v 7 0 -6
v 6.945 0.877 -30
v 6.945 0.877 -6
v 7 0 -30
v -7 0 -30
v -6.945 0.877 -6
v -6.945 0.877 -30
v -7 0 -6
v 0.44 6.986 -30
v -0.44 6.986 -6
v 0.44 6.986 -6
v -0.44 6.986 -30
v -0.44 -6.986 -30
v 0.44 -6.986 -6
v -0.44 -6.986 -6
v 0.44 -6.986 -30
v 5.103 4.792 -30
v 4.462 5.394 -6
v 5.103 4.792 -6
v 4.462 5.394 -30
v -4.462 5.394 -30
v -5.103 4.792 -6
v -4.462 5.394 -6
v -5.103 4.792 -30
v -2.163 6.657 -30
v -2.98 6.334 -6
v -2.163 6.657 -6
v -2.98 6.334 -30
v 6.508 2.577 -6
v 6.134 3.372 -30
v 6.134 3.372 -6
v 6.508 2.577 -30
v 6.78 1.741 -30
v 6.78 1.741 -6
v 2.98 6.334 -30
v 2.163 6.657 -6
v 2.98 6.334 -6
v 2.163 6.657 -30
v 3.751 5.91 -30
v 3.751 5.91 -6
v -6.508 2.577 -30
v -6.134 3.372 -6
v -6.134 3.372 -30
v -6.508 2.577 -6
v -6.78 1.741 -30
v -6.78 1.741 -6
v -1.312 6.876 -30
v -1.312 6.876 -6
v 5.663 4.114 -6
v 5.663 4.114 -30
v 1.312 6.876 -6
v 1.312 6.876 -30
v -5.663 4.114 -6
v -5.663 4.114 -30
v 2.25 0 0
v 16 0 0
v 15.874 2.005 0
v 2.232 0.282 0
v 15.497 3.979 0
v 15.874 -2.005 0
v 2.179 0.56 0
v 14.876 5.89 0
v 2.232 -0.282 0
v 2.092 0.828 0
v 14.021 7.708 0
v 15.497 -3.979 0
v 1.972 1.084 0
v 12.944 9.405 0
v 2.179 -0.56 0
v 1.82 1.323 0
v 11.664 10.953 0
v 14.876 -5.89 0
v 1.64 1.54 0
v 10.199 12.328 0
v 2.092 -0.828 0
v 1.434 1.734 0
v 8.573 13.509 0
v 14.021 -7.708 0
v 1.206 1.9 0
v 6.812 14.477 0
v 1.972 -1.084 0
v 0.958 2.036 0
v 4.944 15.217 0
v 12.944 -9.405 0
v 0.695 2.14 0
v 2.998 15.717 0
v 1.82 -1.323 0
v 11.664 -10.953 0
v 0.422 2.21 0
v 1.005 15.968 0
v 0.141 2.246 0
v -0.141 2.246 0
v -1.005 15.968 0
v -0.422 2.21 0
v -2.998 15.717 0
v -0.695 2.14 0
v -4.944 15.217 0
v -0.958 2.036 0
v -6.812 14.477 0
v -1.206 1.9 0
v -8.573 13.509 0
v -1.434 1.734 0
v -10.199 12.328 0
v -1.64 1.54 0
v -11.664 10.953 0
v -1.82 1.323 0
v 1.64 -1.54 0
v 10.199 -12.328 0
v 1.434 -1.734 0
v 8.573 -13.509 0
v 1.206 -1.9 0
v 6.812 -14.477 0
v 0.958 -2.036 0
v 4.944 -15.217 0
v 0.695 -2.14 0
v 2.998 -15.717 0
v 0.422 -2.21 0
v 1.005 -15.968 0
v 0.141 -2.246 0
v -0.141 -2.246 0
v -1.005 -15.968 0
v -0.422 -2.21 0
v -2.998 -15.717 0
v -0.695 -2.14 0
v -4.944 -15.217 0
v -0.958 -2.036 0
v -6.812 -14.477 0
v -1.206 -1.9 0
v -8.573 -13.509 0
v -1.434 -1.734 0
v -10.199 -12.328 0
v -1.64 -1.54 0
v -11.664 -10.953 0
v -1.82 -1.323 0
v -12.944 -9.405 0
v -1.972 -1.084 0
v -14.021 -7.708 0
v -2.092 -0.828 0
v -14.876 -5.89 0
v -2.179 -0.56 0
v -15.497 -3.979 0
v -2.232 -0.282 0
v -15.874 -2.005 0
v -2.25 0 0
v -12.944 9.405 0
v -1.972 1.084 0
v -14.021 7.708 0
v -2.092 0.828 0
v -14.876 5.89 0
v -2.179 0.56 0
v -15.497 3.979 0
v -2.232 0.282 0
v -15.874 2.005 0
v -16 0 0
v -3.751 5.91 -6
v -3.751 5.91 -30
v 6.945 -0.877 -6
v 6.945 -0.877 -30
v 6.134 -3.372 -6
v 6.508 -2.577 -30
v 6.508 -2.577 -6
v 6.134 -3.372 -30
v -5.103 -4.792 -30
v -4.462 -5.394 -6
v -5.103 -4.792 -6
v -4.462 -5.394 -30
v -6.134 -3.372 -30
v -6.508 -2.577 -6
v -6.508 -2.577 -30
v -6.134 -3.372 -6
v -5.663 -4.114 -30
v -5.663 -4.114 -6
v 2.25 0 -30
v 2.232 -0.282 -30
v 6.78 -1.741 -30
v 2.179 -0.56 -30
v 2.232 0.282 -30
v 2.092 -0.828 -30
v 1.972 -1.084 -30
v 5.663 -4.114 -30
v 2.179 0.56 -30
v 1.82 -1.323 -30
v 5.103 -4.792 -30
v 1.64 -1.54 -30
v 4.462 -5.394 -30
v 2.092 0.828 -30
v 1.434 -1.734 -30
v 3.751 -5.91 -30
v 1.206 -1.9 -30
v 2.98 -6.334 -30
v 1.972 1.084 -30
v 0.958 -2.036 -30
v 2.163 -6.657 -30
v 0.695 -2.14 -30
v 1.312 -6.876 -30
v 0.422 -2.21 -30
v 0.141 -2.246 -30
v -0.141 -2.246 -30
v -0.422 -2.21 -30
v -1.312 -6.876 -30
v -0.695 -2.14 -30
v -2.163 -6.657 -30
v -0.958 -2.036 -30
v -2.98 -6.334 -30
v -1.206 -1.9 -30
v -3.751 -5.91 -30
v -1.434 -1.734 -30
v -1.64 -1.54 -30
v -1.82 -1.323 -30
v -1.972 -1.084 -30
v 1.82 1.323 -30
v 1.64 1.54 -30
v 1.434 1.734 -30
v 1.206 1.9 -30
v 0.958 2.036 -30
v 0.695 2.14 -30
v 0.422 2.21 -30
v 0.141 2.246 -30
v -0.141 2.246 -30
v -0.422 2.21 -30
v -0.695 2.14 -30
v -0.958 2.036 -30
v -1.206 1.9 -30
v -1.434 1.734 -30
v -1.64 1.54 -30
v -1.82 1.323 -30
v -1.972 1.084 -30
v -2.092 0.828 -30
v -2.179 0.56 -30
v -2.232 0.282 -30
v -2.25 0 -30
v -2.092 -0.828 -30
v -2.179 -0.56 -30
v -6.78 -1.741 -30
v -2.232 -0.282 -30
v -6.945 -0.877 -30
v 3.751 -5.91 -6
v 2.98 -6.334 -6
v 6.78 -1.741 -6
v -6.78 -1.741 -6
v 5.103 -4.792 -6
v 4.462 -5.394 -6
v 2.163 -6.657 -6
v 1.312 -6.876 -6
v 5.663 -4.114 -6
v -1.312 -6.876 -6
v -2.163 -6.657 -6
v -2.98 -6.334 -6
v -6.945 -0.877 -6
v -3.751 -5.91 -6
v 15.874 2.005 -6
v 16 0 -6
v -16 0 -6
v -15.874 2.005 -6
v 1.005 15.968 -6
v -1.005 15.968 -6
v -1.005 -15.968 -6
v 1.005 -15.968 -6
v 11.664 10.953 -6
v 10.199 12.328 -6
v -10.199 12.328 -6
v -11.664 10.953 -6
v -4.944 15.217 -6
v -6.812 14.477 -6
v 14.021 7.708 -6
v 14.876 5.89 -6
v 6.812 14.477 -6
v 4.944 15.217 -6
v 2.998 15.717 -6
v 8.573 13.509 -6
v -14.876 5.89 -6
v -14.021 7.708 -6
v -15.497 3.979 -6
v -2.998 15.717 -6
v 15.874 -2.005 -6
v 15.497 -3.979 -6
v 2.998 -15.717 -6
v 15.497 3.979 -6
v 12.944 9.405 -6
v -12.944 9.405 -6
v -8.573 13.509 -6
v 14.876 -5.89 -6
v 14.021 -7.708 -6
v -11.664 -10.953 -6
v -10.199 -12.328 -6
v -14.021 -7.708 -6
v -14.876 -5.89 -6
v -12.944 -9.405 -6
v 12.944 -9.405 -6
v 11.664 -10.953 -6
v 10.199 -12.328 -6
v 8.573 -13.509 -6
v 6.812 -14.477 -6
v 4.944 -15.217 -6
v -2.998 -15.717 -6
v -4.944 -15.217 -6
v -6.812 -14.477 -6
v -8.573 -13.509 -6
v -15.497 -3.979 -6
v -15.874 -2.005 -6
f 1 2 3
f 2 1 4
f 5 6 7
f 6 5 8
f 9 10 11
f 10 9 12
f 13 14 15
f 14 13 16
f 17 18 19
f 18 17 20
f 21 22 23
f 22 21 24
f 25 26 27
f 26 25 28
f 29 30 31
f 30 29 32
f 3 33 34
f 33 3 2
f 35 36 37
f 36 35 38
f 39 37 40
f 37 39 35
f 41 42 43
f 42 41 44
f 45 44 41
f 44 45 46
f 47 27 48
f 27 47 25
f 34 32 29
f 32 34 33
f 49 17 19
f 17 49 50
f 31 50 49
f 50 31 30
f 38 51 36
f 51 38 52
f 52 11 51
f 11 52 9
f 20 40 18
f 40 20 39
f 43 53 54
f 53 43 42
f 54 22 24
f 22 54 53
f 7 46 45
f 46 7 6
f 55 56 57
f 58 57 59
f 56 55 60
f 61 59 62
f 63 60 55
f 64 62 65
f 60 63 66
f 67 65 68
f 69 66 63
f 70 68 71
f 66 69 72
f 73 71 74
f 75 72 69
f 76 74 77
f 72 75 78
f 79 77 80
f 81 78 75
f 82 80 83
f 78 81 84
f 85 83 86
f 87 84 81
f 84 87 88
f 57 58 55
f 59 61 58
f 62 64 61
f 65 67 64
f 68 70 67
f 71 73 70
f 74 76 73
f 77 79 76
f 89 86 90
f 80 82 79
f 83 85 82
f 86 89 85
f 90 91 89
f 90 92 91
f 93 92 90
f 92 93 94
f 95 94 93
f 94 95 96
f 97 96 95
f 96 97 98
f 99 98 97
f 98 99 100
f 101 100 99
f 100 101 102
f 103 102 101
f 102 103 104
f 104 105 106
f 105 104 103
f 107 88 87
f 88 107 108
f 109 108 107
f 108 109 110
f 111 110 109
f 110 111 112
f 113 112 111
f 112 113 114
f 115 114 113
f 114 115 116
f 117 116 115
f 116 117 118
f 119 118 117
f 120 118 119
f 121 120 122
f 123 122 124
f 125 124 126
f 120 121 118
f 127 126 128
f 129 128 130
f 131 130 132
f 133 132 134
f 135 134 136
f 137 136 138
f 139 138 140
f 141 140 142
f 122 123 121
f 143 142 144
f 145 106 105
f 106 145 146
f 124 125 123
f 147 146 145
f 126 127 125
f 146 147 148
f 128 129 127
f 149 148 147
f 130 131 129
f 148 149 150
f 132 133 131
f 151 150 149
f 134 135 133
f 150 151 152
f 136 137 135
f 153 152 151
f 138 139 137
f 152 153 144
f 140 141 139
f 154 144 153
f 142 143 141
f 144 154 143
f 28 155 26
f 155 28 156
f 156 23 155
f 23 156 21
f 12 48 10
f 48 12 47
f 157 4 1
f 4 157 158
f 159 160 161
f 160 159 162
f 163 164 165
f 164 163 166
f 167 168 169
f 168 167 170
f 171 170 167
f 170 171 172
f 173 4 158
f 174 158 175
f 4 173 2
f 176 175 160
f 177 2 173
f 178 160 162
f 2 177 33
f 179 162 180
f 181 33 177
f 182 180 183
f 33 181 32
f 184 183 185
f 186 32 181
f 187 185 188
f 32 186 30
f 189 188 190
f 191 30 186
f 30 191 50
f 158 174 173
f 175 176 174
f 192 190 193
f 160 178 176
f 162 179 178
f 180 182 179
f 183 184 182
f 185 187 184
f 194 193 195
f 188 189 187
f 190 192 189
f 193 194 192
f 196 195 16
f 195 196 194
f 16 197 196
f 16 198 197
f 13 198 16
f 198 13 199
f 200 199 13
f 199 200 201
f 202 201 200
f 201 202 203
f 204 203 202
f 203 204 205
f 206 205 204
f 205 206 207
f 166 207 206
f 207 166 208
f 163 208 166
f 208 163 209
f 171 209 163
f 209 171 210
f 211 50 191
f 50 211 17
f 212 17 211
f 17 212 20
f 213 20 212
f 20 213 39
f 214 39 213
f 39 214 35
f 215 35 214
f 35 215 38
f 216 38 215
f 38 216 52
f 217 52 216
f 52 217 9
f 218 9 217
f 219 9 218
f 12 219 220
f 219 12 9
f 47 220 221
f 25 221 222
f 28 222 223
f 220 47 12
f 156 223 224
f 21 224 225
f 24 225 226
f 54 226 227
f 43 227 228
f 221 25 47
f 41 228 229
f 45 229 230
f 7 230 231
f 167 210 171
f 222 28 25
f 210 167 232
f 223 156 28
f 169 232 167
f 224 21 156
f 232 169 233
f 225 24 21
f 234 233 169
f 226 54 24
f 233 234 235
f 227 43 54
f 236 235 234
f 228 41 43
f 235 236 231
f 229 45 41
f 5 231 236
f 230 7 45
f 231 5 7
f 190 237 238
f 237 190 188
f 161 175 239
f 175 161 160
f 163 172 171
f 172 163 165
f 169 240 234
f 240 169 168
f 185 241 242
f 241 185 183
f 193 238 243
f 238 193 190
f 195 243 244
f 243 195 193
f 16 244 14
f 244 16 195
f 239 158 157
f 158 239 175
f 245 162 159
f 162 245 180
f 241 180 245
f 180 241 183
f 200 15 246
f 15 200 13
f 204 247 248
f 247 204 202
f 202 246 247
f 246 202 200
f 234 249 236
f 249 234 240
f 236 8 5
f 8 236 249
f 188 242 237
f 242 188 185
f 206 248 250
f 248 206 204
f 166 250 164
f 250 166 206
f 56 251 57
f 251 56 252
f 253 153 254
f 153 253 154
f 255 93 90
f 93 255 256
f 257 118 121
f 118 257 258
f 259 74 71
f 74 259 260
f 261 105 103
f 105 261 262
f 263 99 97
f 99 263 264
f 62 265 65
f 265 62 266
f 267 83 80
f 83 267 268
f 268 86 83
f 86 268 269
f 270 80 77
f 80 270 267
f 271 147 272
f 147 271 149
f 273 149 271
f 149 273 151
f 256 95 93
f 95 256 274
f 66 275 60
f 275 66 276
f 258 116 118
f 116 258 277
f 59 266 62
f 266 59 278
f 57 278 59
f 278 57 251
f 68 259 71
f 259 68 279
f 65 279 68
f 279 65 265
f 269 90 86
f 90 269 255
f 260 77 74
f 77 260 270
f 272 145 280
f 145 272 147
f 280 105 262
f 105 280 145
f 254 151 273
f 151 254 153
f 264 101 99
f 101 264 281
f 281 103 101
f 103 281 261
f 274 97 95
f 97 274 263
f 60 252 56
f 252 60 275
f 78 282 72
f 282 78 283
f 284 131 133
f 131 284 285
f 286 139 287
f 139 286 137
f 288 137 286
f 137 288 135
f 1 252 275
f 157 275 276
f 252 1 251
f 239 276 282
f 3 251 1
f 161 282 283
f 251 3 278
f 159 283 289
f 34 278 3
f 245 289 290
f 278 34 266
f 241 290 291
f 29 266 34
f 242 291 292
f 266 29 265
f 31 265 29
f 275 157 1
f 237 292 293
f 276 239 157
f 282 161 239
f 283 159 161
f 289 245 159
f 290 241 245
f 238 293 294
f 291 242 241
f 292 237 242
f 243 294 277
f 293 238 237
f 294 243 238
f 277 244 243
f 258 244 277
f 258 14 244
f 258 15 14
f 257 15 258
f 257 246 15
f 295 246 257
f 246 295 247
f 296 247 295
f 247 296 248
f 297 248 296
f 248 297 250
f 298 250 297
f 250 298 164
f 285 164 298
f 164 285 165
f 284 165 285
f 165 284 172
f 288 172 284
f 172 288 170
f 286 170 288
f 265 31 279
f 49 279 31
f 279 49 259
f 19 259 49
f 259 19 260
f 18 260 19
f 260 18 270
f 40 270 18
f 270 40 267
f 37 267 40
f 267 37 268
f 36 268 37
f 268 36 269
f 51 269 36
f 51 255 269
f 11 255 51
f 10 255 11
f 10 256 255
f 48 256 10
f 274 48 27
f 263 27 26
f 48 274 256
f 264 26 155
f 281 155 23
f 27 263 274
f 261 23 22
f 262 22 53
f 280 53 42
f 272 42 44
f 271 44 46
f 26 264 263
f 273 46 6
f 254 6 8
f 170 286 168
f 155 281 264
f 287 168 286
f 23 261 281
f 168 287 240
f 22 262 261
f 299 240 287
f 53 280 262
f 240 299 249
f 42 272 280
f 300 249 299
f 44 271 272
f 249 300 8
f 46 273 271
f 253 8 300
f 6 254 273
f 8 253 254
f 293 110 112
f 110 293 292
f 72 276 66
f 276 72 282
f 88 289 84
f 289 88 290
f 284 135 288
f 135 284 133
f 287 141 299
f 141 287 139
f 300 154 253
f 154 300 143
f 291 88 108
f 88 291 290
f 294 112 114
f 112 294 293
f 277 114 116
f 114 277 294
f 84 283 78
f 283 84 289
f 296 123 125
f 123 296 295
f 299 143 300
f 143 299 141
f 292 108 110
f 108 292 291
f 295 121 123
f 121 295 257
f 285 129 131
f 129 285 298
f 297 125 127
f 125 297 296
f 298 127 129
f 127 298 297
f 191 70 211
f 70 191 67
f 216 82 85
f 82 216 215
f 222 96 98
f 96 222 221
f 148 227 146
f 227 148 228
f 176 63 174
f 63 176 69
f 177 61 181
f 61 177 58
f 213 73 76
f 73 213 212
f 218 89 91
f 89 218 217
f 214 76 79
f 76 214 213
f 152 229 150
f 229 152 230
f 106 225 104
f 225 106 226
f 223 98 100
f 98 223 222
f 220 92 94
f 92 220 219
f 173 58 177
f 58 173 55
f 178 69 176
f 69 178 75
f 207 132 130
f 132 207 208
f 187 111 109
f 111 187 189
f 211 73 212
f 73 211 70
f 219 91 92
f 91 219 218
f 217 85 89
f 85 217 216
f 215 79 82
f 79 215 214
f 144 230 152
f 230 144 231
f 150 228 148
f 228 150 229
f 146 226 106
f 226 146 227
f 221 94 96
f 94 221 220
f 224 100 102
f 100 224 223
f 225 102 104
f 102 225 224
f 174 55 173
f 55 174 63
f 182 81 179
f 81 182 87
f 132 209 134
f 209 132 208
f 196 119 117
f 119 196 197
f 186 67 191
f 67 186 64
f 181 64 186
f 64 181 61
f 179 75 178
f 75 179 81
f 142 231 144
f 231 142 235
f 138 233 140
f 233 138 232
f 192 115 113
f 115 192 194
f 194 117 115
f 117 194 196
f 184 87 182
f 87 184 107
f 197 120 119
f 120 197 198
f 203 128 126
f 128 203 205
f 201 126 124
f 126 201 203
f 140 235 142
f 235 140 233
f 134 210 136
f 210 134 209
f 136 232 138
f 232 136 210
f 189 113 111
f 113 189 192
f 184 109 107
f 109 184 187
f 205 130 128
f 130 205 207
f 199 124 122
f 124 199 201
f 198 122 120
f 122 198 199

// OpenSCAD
$fn = 50;


difference() {
	union() {
		translate(v = [0, 0, -30.0000000000]) {
			cylinder(h = 30, r = 7.0000000000);
		}
		translate(v = [0, 0, -6.0000000000]) {
			cylinder(h = 6, r = 16.0000000000);
		}
	}
	union() {
		#translate(v = [0, 0, -30]) {
			cylinder(h = 30, r = 2.2500000000);
		}
	}
}
